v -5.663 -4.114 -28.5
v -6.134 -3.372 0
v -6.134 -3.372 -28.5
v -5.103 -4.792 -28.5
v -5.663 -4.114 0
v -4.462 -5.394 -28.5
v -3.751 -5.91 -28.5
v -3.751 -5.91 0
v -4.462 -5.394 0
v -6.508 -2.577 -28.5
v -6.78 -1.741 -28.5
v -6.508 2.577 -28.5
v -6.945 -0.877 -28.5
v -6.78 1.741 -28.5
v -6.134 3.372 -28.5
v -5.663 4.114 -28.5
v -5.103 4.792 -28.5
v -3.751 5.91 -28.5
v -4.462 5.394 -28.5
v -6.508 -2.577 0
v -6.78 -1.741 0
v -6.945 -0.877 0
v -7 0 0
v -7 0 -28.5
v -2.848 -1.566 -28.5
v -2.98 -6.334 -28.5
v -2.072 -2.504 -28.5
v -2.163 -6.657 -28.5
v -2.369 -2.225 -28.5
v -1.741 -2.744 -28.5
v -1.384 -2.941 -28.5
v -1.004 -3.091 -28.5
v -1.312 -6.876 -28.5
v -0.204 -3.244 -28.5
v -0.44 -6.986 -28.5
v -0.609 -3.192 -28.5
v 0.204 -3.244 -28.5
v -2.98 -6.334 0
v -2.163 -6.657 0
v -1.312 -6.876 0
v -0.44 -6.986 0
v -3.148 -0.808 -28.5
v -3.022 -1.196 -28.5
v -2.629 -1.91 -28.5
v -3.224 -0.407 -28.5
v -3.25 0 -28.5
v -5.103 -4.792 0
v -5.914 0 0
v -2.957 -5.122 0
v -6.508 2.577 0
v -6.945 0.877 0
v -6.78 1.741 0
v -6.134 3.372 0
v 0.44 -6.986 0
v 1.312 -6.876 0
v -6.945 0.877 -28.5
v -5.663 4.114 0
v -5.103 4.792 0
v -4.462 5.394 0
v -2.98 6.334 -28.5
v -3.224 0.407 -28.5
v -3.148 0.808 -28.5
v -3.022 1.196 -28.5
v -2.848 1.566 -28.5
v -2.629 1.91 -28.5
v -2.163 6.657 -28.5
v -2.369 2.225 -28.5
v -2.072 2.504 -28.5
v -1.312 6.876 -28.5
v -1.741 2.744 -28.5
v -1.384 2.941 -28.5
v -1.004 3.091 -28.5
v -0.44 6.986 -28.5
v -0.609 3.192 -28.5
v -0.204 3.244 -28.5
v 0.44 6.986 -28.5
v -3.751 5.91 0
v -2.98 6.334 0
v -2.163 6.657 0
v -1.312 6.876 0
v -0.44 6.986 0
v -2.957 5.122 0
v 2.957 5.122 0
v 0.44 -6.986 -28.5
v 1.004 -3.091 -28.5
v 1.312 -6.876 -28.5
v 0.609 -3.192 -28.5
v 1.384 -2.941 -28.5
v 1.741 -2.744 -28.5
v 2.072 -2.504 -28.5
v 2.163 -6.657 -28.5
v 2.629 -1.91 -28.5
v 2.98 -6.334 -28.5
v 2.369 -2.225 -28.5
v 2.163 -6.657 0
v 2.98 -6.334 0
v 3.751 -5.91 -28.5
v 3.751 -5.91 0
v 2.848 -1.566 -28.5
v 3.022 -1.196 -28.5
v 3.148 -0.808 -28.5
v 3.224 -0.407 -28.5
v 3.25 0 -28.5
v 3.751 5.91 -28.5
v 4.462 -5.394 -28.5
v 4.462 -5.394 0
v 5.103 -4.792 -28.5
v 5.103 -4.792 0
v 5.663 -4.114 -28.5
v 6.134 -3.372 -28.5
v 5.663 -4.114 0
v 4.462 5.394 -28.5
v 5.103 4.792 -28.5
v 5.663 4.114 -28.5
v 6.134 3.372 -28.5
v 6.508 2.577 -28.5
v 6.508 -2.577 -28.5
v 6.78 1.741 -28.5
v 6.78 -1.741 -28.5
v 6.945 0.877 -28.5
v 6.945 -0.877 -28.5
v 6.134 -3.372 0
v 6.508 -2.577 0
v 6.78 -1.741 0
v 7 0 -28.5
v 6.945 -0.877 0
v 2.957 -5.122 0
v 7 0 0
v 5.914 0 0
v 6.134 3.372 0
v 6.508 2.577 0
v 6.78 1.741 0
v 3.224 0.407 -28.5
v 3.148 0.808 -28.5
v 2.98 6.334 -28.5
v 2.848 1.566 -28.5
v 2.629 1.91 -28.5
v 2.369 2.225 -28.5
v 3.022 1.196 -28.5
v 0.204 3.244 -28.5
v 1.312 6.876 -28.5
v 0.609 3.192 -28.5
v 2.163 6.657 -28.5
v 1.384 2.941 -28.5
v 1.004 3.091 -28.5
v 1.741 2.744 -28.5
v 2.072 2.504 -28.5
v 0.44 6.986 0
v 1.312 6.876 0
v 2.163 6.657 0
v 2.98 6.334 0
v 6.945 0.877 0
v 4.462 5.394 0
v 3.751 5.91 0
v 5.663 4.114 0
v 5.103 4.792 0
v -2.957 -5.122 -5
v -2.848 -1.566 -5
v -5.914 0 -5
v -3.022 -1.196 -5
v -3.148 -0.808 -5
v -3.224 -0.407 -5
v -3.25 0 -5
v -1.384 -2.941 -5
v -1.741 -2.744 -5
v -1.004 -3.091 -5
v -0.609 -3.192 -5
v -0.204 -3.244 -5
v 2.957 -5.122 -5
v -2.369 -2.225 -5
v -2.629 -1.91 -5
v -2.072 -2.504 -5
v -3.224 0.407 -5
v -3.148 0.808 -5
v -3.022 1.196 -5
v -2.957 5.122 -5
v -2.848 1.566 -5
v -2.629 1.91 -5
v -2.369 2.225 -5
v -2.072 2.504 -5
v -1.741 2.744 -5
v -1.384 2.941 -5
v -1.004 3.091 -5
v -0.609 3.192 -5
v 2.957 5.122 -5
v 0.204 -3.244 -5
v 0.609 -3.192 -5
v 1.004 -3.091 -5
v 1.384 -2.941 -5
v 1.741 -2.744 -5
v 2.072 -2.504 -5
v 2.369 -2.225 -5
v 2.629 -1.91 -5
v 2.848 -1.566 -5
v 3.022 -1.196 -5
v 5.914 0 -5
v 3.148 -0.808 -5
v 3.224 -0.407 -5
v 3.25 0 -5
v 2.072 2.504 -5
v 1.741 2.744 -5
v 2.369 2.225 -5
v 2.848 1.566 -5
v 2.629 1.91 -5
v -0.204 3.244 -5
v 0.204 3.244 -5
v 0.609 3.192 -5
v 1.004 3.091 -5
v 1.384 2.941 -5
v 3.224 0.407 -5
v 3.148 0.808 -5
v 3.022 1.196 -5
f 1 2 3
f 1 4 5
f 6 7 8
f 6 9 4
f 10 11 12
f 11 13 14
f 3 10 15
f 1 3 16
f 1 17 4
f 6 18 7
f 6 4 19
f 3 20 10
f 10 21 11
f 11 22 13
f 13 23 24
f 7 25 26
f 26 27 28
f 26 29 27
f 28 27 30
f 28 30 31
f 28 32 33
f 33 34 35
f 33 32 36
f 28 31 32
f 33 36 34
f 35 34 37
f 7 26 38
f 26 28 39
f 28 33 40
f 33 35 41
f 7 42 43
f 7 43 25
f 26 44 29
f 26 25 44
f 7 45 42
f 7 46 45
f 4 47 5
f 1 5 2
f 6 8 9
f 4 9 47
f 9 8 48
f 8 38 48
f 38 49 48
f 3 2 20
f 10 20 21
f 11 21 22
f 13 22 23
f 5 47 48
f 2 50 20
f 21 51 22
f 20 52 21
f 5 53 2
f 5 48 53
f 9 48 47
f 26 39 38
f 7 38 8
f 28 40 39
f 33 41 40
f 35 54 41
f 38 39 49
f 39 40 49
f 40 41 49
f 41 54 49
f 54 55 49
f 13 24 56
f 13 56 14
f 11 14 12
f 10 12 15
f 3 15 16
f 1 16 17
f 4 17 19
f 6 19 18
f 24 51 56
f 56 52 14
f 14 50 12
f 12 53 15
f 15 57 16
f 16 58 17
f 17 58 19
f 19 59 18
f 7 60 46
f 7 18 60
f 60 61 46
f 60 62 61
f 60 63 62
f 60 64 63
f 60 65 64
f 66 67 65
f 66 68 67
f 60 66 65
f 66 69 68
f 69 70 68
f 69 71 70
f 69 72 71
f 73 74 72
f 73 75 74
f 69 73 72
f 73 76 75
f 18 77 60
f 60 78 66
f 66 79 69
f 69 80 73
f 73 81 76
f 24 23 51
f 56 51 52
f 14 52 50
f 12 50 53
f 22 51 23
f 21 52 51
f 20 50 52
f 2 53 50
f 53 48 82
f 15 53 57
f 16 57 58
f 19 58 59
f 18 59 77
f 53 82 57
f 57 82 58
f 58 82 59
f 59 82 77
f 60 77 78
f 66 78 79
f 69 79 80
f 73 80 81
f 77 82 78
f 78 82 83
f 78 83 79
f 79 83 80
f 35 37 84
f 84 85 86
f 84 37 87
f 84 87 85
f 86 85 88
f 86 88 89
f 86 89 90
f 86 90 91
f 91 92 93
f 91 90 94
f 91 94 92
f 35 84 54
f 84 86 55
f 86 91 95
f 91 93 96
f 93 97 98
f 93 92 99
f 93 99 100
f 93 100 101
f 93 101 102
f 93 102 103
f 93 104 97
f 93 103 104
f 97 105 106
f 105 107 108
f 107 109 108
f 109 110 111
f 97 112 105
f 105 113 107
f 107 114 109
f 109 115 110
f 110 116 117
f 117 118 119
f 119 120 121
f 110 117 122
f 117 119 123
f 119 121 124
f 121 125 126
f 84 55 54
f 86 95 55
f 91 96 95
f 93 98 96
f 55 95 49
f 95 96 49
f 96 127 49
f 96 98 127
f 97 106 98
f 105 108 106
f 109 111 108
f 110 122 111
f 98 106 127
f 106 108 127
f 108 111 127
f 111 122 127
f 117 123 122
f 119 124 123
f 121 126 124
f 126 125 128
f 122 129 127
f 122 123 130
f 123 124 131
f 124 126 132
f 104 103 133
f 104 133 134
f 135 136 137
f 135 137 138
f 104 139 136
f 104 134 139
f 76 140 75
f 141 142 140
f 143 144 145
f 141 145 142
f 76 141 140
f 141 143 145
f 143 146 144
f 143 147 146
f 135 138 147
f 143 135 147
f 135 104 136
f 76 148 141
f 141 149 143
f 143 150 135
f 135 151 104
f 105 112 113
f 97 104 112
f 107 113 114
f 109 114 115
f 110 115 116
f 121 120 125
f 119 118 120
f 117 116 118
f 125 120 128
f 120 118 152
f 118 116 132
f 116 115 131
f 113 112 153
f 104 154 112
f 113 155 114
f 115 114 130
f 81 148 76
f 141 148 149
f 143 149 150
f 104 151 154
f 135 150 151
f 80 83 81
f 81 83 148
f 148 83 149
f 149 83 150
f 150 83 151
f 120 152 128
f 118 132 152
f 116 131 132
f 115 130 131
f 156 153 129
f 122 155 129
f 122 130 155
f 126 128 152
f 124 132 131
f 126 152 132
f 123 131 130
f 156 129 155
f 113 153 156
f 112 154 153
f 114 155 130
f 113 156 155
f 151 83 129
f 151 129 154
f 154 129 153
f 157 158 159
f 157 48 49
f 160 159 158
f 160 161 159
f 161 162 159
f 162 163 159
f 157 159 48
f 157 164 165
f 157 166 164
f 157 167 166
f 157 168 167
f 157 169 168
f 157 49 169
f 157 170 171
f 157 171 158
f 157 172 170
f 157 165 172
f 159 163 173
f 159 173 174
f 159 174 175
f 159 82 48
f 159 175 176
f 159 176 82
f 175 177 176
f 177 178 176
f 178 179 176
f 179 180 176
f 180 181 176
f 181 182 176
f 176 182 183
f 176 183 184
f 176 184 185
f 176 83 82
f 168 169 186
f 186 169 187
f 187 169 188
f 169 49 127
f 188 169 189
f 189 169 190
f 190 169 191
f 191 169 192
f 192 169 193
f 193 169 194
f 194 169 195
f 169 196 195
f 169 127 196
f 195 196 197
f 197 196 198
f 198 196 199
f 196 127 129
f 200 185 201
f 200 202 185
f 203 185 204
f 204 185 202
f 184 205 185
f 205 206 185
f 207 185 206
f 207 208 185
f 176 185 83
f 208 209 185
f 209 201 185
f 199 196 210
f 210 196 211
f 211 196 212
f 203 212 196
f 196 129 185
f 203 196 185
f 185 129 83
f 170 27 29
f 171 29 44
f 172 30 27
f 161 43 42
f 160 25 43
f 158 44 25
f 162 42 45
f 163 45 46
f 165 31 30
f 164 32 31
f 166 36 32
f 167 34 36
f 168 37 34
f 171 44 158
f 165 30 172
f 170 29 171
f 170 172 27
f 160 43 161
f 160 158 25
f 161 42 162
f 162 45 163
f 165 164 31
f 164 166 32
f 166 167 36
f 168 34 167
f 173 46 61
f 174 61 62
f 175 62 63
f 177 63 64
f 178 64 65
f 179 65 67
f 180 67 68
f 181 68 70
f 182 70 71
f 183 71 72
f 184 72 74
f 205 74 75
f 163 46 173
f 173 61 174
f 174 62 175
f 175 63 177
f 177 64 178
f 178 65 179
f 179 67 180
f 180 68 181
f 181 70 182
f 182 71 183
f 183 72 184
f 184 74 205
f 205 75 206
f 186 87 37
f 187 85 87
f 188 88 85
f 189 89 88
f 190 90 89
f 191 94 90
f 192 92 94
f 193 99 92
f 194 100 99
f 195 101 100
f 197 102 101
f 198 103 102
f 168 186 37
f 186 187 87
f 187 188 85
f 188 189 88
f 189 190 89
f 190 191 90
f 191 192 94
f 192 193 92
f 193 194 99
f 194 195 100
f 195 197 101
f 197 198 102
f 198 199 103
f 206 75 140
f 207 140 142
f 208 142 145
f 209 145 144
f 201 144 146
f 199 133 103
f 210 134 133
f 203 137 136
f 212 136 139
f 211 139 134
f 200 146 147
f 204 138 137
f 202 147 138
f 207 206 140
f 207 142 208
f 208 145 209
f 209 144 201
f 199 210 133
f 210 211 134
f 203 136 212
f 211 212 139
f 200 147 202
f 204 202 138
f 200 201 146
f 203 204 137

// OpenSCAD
$fn = 50;


difference() {
	union() {
		translate(v = [0, 0, -28.5000000000]) {
			cylinder(h = 28.5000000000, r = 7.0000000000);
		}
	}
	union() {
		translate(v = [0, 0, 0]) {
			rotate(a = [0, 0, 0]) {
				difference() {
					union() {
						translate(v = [0, 0, -5]) {
							linear_extrude(height = 5) {
								polygon(points = [[5.9142500000, 0.0000000000], [2.9571250000, 5.1218907443], [-2.9571250000, 5.1218907443], [-5.9142500000, 0.0000000000], [-2.9571250000, -5.1218907443], [2.9571250000, -5.1218907443]]);
							}
						}
					}
					union();
				}
			}
		}
		#translate(v = [0, 0, -100.0000000000]) {
			cylinder(h = 200, r = 3.2500000000);
		}
	}
}
